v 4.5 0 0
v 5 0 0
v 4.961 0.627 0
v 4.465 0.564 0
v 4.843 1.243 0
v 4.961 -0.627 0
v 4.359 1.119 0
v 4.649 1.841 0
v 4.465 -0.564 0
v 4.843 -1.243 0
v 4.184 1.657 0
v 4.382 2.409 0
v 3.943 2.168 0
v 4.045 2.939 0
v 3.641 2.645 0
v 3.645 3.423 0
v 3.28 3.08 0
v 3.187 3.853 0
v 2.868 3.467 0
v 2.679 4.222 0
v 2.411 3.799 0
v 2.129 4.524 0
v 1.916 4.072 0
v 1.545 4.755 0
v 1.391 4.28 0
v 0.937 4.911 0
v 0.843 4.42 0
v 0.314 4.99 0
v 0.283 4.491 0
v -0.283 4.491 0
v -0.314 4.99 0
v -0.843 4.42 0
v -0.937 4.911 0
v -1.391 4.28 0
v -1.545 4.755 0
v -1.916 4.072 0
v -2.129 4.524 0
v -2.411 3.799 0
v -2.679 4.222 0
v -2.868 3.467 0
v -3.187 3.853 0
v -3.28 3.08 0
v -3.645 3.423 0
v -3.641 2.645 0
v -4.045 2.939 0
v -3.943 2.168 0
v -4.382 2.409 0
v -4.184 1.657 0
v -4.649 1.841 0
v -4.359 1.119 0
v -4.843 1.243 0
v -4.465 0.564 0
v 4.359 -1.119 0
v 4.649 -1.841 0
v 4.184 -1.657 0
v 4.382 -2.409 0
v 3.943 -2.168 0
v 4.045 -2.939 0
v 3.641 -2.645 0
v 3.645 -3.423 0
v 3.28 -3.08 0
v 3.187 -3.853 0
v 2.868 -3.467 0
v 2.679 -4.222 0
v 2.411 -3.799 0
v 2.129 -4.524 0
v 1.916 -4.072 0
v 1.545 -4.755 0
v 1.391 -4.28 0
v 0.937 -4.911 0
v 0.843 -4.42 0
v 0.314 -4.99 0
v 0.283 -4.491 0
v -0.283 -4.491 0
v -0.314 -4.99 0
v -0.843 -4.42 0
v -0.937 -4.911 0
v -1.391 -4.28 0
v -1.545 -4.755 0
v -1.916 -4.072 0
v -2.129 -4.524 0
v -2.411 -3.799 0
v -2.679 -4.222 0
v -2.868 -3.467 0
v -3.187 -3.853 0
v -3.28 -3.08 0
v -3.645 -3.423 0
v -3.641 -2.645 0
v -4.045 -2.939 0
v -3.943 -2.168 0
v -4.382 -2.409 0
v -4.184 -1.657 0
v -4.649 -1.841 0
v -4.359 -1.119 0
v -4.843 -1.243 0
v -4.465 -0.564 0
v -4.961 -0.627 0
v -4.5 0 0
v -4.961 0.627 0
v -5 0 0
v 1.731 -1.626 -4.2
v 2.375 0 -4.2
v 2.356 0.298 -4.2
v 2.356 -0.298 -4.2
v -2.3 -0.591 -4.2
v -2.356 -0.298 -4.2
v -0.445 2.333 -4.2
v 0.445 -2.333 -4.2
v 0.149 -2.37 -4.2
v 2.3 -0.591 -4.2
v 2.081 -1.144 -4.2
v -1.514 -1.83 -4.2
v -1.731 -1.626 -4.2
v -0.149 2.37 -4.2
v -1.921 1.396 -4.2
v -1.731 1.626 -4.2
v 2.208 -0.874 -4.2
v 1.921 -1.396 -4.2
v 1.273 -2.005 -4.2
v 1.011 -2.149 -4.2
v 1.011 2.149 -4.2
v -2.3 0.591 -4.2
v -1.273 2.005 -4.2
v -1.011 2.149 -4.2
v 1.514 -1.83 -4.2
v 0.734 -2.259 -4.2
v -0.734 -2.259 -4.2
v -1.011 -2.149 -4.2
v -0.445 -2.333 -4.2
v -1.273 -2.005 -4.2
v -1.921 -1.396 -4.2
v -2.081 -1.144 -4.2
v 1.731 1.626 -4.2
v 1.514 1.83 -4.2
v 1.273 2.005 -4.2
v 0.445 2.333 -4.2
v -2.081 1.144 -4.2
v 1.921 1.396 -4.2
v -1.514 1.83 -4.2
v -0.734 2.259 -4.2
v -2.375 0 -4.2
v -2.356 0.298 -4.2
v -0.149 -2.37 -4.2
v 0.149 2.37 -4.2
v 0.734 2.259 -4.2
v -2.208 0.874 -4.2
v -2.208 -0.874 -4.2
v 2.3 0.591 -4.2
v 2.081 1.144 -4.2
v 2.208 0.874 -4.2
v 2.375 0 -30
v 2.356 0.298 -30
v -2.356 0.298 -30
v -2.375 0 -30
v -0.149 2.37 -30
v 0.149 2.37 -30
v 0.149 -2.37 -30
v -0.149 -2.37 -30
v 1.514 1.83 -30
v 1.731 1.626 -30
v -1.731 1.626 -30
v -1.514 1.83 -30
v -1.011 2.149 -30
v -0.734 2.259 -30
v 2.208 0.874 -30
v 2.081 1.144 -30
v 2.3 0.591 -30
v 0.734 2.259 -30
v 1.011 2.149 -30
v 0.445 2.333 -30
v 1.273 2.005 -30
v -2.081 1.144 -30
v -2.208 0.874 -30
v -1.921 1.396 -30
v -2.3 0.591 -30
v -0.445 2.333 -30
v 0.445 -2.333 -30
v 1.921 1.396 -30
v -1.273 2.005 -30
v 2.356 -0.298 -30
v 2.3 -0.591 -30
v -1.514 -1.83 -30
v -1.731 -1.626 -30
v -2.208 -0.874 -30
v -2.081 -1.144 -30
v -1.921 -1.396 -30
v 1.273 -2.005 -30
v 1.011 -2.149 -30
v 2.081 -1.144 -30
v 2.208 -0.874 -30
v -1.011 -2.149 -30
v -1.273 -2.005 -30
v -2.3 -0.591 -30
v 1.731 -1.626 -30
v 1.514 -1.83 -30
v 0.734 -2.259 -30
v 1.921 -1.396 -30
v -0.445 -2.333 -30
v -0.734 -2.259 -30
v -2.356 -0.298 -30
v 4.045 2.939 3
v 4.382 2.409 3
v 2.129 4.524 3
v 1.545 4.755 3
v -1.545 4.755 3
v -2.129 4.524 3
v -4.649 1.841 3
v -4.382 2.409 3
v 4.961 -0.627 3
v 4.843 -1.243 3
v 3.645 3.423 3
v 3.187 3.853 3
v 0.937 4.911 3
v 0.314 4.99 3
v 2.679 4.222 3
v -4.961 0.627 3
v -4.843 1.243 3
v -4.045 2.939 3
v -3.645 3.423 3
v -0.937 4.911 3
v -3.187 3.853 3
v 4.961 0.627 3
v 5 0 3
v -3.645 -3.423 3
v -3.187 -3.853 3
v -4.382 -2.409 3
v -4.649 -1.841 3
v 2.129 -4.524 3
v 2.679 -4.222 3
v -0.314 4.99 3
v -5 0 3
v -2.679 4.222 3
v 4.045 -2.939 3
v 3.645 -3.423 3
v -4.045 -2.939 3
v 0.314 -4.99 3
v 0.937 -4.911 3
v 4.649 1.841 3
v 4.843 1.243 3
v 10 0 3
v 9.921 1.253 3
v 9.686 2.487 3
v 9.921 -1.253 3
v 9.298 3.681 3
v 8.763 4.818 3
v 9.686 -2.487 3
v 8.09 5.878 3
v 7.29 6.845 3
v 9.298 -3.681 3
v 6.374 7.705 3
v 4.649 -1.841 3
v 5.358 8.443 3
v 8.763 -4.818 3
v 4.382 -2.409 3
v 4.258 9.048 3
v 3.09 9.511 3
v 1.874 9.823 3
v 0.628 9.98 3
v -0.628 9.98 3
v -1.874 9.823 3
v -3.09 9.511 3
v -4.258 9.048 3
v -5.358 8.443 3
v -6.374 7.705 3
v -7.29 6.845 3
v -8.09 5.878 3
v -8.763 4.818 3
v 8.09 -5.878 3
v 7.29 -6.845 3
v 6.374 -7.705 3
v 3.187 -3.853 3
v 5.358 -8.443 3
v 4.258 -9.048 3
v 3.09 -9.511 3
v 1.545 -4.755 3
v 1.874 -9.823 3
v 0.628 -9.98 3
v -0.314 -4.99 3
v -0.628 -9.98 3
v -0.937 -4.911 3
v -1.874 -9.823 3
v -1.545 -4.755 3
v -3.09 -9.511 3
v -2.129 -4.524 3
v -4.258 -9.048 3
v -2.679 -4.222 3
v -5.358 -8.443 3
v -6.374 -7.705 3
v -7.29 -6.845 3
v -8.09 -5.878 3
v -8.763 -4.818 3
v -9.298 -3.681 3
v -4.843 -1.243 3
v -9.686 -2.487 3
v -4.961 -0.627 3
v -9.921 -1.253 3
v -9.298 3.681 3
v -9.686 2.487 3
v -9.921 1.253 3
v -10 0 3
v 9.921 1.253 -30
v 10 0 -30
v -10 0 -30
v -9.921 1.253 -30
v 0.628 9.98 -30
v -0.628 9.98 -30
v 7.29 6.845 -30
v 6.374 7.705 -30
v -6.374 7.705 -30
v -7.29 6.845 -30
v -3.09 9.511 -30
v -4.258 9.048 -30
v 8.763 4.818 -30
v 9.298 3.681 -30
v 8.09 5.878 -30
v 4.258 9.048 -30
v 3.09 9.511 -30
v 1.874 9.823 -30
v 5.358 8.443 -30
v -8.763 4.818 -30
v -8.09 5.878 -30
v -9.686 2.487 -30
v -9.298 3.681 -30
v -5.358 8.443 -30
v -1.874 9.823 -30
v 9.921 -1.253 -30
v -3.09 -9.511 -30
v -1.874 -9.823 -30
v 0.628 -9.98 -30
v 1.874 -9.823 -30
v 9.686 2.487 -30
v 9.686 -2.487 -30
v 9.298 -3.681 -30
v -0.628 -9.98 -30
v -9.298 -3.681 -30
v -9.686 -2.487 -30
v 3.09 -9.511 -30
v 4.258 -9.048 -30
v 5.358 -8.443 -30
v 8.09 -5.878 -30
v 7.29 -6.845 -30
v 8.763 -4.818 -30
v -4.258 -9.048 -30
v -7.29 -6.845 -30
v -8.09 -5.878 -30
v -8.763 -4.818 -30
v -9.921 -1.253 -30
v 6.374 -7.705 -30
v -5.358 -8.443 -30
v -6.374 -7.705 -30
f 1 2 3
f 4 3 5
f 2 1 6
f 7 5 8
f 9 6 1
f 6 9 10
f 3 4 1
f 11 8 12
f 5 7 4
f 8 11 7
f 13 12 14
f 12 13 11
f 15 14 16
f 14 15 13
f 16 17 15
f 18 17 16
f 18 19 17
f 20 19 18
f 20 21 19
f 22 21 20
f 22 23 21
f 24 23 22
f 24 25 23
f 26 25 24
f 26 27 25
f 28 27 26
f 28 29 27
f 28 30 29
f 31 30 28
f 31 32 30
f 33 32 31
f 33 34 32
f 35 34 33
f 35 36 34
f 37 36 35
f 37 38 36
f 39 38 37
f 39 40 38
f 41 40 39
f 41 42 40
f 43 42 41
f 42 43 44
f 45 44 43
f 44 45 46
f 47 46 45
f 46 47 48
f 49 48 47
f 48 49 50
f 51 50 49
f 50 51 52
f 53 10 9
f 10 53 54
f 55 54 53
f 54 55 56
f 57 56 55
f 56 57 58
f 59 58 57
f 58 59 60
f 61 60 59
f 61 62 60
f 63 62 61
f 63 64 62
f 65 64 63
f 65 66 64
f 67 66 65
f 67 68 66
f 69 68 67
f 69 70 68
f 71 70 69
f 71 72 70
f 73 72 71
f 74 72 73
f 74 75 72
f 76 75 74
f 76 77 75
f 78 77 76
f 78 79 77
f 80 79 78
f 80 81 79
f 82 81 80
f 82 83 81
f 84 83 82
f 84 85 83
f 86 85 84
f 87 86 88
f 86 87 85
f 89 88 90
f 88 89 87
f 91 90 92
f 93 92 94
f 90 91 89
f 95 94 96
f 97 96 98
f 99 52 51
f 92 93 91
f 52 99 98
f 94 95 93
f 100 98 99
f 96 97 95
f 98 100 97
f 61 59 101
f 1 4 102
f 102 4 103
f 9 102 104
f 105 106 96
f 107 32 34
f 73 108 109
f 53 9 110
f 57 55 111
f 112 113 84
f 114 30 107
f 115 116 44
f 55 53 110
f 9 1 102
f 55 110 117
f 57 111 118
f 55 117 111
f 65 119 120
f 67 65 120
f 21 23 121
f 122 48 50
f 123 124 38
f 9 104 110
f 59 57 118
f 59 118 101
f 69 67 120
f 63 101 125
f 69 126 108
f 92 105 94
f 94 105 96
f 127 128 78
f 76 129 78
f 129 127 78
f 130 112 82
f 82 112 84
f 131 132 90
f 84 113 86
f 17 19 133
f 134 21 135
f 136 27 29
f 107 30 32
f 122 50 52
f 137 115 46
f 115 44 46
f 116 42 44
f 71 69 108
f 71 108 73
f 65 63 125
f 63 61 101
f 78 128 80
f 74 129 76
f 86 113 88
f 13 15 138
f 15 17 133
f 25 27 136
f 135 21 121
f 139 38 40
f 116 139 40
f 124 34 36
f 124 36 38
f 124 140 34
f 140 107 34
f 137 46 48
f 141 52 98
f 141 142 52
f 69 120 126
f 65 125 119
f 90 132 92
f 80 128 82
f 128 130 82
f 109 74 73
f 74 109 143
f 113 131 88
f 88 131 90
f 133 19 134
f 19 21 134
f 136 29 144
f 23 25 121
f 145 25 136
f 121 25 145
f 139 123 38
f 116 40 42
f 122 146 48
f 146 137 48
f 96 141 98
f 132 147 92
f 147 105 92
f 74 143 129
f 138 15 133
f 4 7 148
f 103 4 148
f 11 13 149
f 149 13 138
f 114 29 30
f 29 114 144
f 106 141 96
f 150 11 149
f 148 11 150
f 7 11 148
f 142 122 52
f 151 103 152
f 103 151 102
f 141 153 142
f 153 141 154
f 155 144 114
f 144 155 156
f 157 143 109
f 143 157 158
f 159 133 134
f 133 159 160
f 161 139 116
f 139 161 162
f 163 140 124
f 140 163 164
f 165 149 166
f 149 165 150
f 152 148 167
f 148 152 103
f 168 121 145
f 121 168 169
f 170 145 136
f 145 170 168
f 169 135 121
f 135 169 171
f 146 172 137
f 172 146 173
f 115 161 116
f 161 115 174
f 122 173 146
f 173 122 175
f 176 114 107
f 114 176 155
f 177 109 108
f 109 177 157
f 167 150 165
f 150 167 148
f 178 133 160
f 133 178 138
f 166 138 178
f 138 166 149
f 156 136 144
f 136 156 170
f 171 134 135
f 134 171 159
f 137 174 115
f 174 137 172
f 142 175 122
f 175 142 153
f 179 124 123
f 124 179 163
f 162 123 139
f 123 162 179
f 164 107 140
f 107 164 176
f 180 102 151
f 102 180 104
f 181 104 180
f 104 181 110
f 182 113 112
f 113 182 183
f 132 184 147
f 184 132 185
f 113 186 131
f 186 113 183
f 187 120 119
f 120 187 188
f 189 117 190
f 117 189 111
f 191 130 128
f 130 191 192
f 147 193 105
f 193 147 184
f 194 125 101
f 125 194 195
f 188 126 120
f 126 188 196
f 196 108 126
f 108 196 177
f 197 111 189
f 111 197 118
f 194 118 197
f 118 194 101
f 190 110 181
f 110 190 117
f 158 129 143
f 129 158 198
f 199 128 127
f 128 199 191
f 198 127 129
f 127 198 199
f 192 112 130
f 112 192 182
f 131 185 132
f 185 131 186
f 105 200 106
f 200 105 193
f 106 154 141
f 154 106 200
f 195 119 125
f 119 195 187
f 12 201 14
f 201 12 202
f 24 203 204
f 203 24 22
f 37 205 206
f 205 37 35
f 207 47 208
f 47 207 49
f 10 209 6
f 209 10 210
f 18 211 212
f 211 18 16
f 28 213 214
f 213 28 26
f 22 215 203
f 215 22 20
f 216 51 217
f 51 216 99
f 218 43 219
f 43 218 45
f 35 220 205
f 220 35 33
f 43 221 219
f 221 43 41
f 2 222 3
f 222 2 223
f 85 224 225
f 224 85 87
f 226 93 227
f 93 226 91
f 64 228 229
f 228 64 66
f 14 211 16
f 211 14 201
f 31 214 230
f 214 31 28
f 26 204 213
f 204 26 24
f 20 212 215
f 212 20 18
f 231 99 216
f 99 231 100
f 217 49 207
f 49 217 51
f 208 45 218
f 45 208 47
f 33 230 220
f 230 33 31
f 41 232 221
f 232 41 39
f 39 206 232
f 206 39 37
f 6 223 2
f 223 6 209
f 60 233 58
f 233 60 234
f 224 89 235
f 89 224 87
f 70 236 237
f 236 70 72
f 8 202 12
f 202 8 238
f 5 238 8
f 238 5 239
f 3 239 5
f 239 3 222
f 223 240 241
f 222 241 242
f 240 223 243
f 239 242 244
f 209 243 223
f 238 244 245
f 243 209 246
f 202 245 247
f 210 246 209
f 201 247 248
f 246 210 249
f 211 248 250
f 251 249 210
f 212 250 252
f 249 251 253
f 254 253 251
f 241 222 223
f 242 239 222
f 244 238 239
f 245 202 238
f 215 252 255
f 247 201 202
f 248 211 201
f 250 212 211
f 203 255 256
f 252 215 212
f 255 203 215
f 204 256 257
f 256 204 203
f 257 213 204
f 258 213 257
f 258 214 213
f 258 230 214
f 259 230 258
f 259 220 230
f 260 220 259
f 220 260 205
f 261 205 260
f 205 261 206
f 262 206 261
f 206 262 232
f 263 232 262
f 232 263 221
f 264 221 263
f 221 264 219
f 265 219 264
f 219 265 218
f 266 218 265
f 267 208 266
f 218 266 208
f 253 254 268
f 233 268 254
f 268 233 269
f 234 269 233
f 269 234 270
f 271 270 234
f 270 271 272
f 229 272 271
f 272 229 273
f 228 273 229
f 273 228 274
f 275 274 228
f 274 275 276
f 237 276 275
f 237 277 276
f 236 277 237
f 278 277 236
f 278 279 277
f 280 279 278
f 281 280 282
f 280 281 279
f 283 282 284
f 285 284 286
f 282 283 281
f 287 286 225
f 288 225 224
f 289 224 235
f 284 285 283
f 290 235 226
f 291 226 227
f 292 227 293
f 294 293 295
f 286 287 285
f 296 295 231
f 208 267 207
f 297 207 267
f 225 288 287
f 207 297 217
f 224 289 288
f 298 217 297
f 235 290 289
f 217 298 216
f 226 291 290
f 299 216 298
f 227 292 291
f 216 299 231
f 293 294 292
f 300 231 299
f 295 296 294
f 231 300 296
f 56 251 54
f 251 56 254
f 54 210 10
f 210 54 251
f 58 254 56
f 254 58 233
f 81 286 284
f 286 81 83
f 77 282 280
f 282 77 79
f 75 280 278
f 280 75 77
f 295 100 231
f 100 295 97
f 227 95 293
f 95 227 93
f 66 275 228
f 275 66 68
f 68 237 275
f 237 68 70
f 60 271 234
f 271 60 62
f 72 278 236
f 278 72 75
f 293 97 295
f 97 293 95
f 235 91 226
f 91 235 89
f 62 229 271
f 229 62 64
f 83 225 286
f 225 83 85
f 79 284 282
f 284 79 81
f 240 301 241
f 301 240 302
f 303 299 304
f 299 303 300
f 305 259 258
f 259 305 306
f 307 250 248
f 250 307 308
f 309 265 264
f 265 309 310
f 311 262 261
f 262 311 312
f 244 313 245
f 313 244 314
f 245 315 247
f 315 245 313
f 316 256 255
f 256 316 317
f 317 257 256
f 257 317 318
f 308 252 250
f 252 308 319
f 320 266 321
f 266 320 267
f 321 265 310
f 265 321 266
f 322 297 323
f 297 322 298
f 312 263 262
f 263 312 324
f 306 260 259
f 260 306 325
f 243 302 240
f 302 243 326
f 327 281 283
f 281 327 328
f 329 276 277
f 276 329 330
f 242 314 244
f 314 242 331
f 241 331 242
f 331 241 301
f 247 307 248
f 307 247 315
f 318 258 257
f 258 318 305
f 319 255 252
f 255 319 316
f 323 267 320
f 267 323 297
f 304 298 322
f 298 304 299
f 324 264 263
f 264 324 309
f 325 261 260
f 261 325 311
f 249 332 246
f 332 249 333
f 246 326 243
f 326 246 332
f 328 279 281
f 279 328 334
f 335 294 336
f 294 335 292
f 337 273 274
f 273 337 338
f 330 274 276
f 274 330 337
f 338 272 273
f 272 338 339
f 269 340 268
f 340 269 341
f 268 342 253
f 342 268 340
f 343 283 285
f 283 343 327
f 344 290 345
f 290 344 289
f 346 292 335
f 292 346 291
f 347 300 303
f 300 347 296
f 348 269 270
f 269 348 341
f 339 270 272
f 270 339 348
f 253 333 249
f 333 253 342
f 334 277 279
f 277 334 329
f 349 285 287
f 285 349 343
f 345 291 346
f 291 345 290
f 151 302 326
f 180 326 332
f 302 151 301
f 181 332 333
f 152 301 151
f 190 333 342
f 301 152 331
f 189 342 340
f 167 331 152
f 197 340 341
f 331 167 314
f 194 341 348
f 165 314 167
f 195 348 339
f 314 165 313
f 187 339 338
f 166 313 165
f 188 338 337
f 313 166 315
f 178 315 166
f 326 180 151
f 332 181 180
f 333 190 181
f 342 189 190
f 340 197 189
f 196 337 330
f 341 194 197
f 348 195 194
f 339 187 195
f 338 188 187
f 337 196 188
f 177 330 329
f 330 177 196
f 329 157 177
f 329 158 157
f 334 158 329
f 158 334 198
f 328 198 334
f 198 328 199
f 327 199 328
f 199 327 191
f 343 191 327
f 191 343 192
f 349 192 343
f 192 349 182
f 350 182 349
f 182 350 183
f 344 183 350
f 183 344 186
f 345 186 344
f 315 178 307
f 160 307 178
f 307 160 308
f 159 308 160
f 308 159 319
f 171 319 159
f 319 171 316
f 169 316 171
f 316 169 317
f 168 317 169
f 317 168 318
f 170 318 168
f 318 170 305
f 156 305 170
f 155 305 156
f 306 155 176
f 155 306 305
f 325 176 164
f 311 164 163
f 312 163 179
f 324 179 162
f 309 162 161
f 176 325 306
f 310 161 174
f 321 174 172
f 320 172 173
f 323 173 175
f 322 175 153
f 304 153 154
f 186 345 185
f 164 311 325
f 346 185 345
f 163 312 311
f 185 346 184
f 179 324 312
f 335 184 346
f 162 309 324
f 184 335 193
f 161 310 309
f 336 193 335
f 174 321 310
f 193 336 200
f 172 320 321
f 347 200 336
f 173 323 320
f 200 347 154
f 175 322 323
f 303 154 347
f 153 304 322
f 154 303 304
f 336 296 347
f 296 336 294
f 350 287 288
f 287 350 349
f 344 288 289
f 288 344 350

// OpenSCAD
$fn = 50;


difference() {
	union() {
		translate(v = [0, 0, -30.0000000000]) {
			cylinder(h = 33, r = 10.0000000000);
		}
	}
	union() {
		translate(v = [0, 0, 0]) {
			rotate(a = [0, 0, 0]) {
				difference() {
					union() {
						translate(v = [0, 0, -33.0000000000]) {
							cylinder(h = 33, r = 2.2500000000);
						}
						translate(v = [0, 0, -4.2000000000]) {
							cylinder(h = 4.2000000000, r1 = 2.3750000000, r2 = 4.5000000000);
						}
						translate(v = [0, 0, -33.0000000000]) {
							cylinder(h = 33, r = 2.3750000000);
						}
						translate(v = [0, 0, -33.0000000000]) {
							cylinder(h = 33, r = 2.2500000000);
						}
					}
					union();
				}
			}
		}
		#cylinder(h = 3, r = 5.0000000000);
	}
}
